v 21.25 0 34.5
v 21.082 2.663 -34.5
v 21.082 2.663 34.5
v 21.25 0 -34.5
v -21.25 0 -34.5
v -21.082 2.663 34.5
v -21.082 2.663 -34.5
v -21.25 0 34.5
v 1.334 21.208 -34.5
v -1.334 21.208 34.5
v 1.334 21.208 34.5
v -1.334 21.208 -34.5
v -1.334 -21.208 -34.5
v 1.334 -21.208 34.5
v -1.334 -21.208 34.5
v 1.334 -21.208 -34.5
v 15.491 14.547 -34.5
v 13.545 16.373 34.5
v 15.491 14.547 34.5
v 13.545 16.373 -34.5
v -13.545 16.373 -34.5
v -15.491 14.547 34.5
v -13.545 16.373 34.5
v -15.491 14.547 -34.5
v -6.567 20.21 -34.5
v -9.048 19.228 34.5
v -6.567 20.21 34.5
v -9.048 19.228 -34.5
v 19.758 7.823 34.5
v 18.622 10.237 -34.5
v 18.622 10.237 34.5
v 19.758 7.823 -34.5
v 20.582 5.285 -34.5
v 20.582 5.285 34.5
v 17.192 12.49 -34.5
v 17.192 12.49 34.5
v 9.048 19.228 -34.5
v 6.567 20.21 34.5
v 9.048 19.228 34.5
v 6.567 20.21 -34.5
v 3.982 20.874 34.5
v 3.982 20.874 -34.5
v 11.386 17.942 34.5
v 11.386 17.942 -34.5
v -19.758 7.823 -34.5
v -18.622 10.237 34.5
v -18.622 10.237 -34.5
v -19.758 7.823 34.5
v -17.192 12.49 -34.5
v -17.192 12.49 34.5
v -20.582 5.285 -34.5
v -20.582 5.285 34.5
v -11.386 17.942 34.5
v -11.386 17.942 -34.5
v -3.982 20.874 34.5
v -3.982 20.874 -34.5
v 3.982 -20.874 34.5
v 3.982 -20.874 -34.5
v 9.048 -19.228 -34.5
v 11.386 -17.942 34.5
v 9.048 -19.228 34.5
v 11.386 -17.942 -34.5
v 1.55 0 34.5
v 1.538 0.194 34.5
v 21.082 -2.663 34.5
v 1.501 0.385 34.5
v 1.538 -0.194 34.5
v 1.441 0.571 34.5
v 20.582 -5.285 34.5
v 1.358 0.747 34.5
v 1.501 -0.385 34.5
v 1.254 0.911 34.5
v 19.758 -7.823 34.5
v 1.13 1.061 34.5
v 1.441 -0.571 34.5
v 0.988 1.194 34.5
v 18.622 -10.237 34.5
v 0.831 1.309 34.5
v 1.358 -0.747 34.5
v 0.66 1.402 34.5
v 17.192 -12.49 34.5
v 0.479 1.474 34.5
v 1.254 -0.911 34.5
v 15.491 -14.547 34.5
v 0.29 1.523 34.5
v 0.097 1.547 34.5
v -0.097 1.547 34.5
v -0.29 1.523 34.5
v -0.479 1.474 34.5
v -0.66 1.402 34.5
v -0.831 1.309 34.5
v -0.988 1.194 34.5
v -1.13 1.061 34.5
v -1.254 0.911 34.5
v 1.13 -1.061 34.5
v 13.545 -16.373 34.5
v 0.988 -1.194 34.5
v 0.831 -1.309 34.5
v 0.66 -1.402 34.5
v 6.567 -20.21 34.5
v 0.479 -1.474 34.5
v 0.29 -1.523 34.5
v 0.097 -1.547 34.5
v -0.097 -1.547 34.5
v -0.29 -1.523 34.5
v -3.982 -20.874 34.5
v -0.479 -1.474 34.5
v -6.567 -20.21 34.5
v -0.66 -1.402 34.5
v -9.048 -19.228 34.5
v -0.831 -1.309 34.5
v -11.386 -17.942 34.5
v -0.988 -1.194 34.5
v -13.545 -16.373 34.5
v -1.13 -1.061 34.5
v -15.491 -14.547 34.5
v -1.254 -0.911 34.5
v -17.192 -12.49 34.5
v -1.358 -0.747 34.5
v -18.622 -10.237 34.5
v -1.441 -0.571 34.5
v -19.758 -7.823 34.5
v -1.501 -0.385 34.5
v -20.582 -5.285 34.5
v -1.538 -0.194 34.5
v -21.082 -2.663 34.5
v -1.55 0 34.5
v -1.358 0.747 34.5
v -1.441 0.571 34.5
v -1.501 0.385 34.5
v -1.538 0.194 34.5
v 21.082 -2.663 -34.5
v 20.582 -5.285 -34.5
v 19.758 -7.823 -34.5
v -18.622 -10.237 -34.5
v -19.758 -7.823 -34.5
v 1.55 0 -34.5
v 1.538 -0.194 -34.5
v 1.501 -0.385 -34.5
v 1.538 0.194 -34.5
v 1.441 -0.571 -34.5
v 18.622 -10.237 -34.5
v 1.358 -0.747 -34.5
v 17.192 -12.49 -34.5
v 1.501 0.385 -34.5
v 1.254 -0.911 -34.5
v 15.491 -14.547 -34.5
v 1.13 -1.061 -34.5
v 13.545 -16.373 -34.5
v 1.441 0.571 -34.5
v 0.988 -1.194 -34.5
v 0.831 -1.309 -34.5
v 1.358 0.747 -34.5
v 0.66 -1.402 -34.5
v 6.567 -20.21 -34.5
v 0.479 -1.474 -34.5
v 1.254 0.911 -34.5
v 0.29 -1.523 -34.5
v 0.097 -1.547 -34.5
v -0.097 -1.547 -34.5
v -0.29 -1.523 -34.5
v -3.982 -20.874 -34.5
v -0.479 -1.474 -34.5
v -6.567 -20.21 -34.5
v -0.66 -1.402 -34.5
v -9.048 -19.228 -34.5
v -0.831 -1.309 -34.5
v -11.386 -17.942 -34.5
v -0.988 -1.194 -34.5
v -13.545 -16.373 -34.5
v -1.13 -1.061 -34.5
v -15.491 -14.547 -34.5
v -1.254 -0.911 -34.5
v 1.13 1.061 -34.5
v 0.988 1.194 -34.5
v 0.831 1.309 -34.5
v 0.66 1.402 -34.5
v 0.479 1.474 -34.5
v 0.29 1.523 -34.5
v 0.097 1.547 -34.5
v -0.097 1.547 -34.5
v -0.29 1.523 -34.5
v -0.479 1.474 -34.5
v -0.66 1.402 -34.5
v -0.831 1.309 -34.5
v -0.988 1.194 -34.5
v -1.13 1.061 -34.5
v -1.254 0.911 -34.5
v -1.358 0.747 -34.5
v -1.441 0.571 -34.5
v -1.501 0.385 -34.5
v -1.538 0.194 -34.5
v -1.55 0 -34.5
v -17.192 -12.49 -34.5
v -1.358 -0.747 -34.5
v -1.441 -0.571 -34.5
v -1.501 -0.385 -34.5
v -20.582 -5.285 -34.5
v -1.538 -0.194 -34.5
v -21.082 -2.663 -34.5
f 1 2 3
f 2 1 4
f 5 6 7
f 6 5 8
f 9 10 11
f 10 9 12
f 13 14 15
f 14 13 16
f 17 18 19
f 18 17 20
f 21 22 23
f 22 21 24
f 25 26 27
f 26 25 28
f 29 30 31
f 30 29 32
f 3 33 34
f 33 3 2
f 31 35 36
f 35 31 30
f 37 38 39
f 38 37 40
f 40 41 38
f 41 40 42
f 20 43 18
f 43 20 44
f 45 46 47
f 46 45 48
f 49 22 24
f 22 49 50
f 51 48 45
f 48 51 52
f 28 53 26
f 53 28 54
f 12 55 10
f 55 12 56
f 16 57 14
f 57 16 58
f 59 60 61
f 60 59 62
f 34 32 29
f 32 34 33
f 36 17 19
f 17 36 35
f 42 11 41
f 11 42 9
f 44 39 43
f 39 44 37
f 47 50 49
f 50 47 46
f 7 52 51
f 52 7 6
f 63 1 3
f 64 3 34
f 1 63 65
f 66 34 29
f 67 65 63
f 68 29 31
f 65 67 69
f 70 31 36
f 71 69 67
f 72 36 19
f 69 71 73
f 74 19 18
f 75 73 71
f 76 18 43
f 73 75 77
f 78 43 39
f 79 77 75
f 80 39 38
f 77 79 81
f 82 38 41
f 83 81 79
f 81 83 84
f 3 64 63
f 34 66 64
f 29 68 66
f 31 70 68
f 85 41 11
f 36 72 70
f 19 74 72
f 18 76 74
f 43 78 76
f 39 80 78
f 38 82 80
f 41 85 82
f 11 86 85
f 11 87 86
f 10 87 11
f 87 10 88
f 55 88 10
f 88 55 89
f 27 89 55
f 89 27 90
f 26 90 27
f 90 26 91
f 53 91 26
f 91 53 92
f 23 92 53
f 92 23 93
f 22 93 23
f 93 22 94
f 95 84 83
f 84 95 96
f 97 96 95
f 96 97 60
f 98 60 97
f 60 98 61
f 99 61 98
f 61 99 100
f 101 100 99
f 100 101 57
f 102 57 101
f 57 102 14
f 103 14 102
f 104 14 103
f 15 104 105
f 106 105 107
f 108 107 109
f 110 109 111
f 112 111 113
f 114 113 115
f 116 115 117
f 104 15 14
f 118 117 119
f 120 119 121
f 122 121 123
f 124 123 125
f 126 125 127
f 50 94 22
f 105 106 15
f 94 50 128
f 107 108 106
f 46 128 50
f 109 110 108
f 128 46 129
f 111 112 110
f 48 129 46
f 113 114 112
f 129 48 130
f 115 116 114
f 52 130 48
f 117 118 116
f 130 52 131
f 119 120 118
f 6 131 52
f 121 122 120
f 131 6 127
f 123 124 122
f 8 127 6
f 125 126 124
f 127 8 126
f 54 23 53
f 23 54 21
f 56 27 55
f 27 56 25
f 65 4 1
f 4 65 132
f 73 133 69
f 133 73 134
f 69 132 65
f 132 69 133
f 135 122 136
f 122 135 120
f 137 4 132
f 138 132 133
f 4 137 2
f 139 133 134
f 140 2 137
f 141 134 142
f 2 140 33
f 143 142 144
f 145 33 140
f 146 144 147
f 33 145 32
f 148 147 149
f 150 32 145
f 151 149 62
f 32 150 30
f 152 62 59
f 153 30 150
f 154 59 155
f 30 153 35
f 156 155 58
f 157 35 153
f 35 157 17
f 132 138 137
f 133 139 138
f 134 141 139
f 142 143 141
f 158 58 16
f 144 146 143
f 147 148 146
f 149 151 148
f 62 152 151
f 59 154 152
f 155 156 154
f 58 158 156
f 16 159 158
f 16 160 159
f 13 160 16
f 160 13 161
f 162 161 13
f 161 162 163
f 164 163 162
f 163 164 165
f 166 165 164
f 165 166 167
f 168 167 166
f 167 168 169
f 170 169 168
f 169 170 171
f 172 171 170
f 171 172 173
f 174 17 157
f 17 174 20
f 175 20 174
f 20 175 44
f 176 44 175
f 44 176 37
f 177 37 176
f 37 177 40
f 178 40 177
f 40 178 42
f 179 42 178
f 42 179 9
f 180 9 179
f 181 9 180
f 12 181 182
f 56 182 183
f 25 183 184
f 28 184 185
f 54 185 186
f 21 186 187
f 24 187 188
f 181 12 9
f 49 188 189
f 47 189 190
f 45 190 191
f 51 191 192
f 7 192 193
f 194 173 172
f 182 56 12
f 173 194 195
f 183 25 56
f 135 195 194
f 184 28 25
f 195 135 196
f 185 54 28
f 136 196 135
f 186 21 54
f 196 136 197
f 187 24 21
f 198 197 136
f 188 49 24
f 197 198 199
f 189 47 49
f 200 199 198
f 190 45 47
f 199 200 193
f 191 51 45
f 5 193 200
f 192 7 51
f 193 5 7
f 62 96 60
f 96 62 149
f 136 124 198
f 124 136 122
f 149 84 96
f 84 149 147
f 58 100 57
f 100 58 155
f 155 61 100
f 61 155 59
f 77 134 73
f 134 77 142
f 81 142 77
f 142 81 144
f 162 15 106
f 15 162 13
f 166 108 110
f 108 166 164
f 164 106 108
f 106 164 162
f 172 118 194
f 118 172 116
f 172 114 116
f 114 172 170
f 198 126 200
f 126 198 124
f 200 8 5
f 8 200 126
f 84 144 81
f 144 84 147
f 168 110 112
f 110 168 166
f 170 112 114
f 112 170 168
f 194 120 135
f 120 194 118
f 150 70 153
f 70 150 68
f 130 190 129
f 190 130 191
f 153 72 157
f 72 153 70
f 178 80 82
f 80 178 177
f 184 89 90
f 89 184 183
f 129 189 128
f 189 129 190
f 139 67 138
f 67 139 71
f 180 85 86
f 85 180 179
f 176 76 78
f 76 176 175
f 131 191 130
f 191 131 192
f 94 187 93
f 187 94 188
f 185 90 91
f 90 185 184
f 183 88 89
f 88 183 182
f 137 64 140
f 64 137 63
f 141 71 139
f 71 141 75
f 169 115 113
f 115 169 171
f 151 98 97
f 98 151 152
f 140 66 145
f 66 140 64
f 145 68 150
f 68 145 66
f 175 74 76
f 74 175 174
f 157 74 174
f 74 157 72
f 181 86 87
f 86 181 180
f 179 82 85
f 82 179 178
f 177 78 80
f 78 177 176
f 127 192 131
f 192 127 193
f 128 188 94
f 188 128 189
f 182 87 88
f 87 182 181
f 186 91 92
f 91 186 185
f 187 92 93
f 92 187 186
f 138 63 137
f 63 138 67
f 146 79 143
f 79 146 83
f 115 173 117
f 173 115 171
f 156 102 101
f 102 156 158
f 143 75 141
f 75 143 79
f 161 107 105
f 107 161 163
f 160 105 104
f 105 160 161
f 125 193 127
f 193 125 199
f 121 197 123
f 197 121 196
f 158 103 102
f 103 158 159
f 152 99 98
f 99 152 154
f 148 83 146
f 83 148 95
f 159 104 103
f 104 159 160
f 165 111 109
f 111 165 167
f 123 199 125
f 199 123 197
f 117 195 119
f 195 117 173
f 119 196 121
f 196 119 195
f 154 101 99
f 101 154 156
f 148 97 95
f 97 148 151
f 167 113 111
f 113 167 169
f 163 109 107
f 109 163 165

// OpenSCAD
$fn = 50;


difference() {
	union() {
		translate(v = [0, 0, -34.5000000000]) {
			cylinder(h = 69, r = 21.2500000000);
		}
	}
	union() {
		translate(v = [0, 0, -100.0000000000]) {
			cylinder(h = 200, r = 1.5500000000);
		}
	}
}
